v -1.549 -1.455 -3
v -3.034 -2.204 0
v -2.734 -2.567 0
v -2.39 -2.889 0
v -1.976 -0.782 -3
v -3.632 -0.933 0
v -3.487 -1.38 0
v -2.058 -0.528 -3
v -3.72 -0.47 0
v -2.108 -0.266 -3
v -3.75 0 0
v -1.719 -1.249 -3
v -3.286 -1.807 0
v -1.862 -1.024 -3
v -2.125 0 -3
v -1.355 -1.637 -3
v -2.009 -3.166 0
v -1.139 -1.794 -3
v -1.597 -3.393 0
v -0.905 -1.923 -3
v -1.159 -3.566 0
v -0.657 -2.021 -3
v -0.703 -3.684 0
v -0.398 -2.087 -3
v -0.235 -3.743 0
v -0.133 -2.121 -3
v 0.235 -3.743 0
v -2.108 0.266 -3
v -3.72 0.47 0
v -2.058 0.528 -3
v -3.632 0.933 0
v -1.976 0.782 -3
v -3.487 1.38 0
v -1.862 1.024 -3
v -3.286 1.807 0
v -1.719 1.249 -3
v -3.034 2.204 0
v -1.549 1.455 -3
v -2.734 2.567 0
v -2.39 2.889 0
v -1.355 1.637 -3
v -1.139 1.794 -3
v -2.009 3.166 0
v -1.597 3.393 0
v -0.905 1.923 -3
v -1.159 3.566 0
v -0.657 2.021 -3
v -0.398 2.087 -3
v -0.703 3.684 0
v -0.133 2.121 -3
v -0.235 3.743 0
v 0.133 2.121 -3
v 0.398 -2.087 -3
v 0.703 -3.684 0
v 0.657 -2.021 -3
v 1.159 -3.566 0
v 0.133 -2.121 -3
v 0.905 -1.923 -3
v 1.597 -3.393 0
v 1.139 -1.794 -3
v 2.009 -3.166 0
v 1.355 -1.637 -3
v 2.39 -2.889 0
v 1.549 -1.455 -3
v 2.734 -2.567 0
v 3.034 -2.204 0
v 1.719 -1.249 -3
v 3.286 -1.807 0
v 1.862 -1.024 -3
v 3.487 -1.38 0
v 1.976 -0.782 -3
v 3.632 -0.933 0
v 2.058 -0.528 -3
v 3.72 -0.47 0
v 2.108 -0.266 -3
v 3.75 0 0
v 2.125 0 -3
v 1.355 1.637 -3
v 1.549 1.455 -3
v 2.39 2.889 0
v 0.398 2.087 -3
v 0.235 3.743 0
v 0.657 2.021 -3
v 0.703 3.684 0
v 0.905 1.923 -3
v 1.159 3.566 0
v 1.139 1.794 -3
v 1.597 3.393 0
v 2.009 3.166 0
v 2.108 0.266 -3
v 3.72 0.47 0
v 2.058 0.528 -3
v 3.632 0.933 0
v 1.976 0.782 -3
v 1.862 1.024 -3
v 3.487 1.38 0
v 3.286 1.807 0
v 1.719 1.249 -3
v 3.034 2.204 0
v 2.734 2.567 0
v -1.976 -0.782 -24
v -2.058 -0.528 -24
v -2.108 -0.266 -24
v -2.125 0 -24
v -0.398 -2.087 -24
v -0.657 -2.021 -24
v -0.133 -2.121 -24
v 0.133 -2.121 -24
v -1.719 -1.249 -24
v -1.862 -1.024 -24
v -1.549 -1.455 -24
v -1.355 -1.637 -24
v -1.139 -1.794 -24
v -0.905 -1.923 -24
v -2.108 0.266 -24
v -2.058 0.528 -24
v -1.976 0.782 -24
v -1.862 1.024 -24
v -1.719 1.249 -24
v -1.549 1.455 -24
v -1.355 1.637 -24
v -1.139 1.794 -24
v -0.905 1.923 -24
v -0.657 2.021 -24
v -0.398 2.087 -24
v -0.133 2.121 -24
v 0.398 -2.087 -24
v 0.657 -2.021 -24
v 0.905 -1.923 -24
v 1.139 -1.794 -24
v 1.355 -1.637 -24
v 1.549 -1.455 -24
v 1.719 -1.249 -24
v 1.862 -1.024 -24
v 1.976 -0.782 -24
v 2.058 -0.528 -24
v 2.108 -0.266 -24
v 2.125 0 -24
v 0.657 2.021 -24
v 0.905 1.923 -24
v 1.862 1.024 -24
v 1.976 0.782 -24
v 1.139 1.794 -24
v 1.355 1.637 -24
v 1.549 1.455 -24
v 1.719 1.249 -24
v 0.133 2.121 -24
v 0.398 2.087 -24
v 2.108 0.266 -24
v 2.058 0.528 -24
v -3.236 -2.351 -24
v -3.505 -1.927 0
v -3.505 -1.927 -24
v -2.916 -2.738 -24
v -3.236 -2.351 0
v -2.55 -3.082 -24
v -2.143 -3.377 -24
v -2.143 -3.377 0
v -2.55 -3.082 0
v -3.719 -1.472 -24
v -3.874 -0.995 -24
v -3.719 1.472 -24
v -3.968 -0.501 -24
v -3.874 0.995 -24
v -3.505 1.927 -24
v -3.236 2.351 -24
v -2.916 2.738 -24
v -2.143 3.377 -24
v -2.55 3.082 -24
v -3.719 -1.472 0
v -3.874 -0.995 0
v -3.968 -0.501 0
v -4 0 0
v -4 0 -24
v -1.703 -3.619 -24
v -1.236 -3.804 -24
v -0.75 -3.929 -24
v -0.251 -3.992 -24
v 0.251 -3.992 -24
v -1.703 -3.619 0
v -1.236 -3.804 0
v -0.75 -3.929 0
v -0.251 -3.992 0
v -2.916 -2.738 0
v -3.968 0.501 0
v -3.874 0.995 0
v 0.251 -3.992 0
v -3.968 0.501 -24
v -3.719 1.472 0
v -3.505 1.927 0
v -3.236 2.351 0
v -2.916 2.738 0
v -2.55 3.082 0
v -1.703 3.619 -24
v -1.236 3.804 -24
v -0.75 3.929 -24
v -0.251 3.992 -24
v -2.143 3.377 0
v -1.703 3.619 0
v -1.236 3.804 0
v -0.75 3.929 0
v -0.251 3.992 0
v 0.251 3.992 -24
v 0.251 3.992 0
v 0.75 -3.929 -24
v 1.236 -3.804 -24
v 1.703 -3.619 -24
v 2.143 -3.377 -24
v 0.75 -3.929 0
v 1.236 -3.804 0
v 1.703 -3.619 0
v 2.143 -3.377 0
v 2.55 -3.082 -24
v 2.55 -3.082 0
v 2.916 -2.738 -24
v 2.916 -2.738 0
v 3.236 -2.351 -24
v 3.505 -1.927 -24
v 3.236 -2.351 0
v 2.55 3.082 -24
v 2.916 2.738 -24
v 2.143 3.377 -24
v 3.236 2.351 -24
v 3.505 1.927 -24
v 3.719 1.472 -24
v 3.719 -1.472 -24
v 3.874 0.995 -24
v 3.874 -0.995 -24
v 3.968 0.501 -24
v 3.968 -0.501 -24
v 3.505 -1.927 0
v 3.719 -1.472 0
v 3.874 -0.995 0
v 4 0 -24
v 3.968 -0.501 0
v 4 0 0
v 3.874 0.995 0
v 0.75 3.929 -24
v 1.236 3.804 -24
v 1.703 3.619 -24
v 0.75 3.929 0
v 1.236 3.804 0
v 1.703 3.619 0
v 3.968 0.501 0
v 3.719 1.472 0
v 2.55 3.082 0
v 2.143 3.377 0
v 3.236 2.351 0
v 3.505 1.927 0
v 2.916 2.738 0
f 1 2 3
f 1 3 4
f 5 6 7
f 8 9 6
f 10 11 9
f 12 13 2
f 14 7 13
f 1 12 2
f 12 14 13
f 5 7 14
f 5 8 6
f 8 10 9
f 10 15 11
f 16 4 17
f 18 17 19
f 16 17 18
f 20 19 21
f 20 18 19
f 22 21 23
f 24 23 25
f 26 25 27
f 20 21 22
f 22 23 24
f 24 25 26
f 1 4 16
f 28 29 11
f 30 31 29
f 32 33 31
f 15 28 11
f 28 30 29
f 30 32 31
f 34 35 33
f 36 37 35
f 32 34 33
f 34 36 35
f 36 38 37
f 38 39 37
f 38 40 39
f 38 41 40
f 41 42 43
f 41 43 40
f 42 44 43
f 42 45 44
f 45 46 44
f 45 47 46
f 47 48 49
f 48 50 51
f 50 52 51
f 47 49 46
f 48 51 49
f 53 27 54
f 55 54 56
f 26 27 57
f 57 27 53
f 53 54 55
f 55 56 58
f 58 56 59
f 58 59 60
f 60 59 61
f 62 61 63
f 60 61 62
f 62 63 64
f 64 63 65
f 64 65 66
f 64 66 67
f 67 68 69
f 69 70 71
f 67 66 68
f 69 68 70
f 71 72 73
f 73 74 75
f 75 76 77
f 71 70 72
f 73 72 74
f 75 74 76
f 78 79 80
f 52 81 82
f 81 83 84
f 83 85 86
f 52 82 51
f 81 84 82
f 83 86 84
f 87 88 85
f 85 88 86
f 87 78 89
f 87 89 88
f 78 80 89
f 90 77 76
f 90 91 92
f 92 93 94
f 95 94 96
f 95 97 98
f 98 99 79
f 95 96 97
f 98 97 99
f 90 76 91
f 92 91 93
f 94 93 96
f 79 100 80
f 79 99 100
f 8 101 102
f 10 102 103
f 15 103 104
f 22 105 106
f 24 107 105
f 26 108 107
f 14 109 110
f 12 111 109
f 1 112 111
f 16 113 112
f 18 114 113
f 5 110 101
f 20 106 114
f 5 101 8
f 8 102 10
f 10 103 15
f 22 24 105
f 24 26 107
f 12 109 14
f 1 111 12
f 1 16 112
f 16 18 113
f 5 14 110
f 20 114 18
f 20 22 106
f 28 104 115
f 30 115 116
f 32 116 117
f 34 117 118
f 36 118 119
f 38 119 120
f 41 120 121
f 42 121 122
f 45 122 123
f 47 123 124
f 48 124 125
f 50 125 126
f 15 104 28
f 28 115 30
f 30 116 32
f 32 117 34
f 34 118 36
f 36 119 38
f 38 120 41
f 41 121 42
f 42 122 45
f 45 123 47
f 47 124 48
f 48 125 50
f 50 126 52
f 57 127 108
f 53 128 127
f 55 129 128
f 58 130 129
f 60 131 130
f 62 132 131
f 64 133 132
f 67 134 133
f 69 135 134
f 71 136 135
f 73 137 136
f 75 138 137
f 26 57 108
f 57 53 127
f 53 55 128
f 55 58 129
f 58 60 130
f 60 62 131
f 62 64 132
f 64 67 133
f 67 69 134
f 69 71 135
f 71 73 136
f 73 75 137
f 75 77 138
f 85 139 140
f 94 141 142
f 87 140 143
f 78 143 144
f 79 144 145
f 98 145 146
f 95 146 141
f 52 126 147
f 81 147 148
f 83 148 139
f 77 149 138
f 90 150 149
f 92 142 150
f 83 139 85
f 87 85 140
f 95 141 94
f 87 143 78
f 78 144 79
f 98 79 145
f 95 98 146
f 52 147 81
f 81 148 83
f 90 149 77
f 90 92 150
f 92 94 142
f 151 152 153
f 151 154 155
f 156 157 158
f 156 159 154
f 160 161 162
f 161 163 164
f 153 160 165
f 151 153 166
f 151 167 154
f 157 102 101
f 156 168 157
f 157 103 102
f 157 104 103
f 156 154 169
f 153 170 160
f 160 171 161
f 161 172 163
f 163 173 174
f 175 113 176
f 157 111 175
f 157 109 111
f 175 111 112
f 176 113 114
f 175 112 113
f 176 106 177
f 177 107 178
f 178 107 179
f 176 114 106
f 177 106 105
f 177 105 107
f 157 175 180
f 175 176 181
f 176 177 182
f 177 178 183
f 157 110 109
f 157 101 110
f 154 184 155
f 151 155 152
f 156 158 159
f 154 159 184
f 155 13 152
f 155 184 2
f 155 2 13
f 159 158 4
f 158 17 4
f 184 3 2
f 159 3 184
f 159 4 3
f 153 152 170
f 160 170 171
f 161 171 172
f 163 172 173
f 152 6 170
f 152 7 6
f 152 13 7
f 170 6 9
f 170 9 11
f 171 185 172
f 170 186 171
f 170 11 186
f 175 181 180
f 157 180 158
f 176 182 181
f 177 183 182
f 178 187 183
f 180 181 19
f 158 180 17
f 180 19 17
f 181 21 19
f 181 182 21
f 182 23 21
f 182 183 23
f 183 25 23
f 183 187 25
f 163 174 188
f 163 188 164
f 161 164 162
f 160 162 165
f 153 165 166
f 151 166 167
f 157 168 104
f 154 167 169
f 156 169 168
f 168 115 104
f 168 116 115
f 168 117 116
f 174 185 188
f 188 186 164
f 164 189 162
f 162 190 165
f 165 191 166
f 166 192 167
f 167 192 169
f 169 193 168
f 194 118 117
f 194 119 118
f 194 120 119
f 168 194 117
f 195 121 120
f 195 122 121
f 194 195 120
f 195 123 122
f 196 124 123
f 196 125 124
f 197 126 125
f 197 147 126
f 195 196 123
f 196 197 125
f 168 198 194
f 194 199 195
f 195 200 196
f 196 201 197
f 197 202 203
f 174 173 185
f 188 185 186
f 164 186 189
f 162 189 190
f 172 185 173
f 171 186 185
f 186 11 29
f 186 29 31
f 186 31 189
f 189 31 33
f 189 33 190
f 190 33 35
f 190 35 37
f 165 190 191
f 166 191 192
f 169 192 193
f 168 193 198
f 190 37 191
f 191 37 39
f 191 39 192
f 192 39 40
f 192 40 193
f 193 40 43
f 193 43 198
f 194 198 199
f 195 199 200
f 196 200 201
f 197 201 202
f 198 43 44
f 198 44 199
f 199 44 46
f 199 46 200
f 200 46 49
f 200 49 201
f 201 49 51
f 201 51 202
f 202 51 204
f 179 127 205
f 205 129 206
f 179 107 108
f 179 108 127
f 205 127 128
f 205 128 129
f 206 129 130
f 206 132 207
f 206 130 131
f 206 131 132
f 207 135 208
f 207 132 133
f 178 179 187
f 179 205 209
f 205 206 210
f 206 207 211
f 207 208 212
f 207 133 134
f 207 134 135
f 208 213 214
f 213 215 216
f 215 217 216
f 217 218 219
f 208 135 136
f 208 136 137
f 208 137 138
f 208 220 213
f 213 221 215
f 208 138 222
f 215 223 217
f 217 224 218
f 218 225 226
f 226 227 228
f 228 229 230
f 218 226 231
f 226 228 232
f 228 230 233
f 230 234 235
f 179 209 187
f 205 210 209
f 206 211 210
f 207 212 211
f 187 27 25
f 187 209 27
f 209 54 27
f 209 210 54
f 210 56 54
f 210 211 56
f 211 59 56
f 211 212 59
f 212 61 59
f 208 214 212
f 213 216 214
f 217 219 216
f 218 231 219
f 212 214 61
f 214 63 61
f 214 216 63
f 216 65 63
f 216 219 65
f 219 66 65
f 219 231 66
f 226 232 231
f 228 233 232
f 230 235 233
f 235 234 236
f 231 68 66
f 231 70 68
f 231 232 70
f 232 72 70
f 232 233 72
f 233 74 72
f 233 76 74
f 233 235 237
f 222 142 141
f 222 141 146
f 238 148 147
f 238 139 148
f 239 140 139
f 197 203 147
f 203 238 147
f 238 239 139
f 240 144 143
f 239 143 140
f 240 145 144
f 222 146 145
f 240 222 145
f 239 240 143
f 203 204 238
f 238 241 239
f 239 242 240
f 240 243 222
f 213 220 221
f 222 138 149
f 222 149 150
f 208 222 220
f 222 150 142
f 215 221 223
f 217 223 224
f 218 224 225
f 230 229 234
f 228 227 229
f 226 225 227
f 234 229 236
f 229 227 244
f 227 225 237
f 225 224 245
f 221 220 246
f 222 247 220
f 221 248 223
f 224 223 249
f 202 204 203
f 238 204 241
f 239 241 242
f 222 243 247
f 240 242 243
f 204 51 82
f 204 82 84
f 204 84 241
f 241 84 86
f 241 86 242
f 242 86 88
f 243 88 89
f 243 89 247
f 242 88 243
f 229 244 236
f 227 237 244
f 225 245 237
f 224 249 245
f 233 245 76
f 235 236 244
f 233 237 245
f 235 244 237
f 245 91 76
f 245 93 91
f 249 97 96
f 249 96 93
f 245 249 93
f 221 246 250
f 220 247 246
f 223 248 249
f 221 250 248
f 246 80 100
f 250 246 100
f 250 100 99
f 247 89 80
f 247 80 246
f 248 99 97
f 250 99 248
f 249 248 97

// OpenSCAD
$fn = 50;

difference() {
	union() {
		translate(v = [0, 0, -24.0]) {
			cylinder(h = 27, r = 4.0);
		}
	}
	union() {
		translate(v = [0, 0, 0]) {
			rotate(a = [0, 0, 0]) {
				difference() {
					union() {
						translate(v = [0, 0, -27.0]) {
							cylinder(h = 27, r = 2.0);
						}
						translate(v = [0, 0, -3]) {
							cylinder(h = 3, r1 = 2.125, r2 = 3.75);
						}
						translate(v = [0, 0, -27.0]) {
							cylinder(h = 27, r = 2.125);
						}
						translate(v = [0, 0, -27.0]) {
							cylinder(h = 27, r = 2.0);
						}
					}
					union();
				}
			}
		}
		#cylinder(h = 3, r = 5.0);
	}
}
